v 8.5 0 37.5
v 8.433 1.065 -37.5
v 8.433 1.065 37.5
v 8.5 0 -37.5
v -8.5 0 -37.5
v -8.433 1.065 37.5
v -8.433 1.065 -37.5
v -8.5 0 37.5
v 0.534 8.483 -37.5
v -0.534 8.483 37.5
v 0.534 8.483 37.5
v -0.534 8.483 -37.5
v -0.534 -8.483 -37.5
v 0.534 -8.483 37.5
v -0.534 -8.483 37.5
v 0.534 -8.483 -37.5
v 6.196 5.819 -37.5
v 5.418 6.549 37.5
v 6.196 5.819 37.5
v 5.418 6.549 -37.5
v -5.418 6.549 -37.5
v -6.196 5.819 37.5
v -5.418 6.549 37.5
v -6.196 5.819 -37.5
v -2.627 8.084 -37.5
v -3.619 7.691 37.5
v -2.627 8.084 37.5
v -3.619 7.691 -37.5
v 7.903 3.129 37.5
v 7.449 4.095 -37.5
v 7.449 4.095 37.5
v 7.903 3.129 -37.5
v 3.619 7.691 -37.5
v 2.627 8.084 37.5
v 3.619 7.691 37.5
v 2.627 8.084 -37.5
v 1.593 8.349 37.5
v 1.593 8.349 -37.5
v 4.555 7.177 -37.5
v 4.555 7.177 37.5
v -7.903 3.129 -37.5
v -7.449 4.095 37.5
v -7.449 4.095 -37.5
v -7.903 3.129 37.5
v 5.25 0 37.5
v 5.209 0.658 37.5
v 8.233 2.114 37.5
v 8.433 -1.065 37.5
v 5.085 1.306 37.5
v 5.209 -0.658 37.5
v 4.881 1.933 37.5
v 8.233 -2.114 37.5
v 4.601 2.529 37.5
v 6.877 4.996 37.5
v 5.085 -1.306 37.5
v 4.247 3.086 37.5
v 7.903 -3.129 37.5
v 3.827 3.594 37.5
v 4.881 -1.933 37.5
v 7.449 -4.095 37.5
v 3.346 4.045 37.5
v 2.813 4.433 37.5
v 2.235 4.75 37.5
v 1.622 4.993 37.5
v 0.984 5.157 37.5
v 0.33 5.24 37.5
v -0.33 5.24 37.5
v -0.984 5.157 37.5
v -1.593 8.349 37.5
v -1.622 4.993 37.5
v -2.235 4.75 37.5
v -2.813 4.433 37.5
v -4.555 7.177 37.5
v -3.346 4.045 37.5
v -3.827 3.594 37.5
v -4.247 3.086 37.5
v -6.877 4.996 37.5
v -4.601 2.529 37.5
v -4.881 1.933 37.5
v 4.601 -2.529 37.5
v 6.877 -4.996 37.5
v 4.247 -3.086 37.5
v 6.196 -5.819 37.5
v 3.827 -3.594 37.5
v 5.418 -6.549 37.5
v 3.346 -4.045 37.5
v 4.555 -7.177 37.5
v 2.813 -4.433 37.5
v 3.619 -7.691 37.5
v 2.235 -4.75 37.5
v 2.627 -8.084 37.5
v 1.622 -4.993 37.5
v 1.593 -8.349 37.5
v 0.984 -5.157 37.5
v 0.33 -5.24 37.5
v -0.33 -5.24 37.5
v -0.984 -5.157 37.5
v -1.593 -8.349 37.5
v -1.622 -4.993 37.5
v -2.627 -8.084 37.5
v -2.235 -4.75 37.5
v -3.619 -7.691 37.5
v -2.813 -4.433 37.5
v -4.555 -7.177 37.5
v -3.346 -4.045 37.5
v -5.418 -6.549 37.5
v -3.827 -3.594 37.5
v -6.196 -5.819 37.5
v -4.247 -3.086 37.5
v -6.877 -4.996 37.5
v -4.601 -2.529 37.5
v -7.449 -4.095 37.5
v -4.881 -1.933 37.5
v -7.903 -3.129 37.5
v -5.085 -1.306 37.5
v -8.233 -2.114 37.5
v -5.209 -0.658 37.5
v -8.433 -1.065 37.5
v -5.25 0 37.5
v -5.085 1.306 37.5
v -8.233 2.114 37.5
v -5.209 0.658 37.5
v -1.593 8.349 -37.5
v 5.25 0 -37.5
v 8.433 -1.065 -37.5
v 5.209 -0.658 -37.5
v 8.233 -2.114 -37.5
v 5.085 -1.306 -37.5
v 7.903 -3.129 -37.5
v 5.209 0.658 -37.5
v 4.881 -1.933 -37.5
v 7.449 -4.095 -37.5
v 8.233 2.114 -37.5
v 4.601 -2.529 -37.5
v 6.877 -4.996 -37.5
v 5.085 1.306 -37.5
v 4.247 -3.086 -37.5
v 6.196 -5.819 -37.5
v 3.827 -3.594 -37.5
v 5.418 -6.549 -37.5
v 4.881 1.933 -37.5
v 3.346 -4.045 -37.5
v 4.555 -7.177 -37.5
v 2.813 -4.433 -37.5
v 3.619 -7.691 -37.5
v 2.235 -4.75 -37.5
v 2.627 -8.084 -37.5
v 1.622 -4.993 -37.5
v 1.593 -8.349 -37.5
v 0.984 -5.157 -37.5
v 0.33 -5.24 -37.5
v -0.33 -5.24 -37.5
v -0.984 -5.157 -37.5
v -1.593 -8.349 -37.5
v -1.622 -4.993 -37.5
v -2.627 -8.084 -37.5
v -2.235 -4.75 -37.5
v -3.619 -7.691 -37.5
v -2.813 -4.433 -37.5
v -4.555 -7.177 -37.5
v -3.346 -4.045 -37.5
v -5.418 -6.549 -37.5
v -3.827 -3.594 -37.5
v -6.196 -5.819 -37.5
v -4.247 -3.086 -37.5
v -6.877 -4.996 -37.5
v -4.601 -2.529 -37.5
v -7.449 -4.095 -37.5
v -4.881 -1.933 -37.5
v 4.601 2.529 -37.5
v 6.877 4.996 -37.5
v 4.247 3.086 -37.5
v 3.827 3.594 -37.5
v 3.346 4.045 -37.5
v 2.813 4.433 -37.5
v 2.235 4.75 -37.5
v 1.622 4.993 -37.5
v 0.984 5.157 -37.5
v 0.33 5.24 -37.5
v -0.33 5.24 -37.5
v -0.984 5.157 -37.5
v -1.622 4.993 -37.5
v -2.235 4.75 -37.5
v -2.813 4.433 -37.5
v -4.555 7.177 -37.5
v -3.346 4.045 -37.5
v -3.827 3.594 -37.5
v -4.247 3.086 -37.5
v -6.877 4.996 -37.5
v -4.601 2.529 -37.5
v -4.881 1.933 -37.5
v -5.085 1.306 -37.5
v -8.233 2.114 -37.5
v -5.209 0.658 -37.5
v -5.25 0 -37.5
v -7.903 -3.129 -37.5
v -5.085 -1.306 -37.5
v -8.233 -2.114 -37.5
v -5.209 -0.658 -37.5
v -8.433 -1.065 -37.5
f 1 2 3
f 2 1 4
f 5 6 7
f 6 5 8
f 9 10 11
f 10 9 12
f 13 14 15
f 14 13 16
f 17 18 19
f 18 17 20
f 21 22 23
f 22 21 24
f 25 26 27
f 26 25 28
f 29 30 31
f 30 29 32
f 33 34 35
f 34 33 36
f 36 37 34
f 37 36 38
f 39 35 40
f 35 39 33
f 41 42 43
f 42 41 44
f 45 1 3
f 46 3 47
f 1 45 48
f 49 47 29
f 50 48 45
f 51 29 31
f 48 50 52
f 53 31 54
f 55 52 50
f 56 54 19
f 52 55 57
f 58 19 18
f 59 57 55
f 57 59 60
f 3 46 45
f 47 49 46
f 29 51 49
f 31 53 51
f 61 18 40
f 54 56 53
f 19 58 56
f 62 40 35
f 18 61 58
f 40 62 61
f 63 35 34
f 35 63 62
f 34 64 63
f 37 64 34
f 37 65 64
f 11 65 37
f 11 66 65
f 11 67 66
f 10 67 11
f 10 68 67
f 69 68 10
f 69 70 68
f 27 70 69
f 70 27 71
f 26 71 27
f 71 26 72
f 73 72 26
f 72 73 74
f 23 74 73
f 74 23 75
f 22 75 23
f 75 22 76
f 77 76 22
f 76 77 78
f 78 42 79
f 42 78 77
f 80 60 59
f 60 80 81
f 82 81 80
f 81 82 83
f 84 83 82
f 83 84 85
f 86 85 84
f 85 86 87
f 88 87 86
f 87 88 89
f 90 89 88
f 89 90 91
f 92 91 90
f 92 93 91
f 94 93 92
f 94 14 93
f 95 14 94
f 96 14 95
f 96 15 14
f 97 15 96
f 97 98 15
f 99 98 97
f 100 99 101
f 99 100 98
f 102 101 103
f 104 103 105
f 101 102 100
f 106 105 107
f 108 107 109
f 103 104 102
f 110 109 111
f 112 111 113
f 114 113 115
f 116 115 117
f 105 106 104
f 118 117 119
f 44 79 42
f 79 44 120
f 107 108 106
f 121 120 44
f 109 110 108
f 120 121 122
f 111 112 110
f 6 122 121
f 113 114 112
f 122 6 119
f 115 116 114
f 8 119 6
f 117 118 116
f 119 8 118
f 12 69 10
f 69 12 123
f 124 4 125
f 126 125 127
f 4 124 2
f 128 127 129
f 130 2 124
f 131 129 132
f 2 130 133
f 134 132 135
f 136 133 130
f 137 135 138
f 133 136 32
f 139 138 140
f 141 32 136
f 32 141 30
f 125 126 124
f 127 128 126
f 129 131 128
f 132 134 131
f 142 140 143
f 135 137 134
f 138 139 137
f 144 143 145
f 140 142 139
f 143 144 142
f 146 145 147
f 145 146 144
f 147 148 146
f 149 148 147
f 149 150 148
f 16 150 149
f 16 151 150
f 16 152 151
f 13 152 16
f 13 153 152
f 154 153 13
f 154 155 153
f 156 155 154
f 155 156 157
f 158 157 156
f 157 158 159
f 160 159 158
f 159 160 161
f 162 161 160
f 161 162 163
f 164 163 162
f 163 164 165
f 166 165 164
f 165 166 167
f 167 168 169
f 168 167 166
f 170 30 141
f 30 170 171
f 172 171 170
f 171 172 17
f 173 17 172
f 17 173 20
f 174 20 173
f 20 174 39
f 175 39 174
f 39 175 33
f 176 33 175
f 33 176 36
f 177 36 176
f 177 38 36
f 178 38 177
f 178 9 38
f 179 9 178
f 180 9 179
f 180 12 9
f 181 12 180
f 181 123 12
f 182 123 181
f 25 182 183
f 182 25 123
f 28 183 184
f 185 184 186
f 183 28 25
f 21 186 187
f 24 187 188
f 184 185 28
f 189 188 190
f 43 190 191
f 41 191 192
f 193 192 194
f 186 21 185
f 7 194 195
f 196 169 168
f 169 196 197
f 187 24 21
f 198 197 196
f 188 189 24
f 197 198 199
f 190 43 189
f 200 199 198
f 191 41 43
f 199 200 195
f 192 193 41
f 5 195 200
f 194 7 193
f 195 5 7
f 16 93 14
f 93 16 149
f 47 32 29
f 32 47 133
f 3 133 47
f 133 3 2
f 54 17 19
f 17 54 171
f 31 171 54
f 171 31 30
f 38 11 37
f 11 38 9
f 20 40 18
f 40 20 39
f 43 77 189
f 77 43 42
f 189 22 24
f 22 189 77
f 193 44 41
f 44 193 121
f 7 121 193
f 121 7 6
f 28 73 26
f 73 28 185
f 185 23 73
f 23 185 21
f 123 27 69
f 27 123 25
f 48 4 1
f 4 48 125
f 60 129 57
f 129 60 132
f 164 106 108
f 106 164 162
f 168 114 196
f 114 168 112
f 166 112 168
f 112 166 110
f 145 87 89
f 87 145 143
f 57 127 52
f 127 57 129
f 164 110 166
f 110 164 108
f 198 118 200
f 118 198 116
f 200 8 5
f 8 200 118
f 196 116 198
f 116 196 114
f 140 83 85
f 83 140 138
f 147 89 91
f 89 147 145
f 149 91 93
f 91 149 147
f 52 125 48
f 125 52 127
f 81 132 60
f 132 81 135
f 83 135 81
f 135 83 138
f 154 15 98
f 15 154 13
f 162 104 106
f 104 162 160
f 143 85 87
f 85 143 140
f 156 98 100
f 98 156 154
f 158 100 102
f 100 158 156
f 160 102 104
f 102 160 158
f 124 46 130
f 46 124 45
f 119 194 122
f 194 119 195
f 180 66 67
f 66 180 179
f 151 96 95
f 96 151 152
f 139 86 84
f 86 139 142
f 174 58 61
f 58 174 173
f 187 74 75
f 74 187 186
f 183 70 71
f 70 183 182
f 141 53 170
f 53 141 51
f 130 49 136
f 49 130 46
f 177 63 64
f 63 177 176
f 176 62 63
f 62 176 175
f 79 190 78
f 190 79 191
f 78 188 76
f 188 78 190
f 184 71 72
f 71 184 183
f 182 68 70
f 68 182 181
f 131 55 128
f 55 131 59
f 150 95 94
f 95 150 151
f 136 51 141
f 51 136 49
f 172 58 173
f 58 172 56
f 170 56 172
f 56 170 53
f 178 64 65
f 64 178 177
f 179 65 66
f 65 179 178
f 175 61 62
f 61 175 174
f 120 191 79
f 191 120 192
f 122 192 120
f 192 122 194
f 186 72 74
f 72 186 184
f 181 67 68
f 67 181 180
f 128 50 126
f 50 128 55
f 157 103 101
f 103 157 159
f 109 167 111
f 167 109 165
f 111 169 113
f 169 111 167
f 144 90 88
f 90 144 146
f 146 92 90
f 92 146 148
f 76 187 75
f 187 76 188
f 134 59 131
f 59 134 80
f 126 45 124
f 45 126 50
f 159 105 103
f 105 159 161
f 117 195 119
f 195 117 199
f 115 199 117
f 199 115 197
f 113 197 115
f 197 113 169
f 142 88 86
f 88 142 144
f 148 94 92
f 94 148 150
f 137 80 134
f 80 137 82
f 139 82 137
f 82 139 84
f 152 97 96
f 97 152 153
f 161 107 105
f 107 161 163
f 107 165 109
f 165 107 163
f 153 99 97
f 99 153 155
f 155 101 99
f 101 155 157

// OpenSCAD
$fn = 50;


difference() {
	union() {
		translate(v = [0, 0, -37.5000000000]) {
			cylinder(h = 75, r = 8.5000000000);
		}
	}
	union() {
		translate(v = [0, 0, -100.0000000000]) {
			cylinder(h = 200, r = 5.2500000000);
		}
	}
}
